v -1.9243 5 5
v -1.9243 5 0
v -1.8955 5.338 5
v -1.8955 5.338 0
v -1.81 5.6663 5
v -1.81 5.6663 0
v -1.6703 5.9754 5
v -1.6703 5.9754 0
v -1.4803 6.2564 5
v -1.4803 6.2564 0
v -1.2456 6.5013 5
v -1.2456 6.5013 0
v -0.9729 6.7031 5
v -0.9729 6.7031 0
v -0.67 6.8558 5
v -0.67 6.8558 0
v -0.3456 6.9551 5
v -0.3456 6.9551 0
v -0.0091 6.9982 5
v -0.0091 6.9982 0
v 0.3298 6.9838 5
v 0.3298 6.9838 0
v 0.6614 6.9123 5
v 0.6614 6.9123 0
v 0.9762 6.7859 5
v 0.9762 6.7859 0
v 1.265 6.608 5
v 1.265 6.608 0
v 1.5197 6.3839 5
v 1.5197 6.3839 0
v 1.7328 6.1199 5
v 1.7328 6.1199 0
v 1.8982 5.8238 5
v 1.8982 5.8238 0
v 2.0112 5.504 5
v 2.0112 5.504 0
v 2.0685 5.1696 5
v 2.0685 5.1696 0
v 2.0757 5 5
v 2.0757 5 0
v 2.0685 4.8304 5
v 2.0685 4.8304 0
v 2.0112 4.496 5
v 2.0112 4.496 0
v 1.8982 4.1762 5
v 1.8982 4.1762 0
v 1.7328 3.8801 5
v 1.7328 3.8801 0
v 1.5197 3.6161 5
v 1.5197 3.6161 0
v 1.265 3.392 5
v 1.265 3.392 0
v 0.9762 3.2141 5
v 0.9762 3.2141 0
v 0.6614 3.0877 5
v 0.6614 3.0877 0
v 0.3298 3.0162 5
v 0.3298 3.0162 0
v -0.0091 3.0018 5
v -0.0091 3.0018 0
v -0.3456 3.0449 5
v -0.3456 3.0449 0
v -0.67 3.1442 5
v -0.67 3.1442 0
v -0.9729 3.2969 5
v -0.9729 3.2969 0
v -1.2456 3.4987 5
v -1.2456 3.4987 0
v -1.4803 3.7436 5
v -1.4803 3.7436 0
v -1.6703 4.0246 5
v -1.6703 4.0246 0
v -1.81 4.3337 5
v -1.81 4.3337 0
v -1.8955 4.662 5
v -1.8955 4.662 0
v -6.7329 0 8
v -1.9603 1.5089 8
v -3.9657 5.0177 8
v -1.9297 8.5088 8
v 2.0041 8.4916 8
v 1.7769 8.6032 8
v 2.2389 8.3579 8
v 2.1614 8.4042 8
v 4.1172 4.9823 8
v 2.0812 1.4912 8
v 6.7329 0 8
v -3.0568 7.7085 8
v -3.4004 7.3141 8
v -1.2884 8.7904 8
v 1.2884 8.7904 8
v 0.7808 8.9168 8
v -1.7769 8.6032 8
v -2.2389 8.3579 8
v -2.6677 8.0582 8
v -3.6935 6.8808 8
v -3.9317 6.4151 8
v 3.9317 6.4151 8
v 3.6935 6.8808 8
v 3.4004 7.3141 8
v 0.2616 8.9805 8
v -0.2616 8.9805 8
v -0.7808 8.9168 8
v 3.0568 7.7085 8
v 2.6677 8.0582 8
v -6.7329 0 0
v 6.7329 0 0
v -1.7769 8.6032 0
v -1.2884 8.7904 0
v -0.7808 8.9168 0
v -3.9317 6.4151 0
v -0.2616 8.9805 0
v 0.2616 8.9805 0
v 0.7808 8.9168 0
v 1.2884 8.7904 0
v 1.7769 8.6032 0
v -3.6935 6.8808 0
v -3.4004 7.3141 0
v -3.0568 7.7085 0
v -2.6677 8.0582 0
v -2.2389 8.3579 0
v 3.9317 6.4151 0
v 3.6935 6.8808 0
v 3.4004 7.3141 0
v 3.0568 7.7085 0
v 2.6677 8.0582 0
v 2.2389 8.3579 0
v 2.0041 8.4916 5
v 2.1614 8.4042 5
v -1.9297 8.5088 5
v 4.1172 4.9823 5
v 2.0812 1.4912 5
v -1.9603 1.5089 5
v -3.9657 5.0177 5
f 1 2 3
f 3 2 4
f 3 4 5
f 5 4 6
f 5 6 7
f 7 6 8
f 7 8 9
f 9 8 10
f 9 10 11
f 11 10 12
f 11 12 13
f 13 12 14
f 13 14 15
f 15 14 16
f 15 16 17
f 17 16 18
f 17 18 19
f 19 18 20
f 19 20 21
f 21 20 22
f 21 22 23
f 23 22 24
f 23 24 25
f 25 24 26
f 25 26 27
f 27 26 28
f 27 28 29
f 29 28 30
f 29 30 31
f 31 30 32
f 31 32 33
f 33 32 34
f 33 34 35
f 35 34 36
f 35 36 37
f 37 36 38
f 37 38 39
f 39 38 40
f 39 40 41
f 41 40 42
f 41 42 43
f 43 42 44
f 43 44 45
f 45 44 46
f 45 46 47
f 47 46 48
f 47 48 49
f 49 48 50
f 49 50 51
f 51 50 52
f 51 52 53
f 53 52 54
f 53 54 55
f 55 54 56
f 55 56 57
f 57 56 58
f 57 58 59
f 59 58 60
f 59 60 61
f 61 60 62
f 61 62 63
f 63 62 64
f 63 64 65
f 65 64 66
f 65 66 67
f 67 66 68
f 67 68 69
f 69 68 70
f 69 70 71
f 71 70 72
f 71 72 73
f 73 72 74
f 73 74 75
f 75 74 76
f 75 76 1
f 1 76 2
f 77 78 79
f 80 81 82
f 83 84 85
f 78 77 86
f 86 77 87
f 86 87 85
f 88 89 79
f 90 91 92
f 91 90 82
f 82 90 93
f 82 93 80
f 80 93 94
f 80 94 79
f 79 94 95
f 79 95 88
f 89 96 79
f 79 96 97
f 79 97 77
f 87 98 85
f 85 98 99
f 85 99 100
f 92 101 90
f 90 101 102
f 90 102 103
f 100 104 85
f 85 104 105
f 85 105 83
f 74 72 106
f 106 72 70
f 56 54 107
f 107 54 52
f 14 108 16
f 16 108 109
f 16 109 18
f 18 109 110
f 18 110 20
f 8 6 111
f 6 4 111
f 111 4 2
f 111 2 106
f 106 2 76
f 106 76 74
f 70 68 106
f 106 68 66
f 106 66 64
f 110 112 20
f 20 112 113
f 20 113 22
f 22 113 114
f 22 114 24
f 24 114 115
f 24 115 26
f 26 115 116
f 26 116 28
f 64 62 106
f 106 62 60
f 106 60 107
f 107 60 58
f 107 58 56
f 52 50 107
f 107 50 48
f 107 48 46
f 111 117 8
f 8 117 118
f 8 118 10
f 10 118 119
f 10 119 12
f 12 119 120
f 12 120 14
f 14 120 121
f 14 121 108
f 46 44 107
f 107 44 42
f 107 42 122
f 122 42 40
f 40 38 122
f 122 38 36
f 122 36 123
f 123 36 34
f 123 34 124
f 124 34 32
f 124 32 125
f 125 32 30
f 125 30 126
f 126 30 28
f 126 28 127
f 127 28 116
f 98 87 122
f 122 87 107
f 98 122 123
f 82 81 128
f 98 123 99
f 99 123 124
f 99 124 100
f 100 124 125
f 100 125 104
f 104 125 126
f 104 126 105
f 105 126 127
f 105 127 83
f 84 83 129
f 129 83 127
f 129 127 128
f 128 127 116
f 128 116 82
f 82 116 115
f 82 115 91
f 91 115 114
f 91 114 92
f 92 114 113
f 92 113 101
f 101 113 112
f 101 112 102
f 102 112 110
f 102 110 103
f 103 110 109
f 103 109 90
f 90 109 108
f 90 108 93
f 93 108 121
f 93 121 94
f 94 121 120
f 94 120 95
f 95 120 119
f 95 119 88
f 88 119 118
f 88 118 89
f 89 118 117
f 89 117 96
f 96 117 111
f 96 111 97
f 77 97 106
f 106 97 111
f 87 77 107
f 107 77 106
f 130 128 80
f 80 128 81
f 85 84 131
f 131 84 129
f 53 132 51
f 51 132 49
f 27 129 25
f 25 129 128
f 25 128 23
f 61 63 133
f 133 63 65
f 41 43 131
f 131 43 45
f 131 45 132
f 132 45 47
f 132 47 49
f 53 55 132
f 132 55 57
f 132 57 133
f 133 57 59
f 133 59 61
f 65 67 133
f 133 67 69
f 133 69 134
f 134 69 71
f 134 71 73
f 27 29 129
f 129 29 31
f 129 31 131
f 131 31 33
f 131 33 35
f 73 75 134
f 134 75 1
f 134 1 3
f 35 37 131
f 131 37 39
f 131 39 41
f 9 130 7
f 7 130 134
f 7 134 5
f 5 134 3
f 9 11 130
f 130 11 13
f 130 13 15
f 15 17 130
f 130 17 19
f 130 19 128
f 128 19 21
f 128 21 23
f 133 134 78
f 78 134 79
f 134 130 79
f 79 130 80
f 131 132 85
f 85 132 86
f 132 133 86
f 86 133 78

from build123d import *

# Parameters (mm, degrees)
CROQUIS1_R              = 2
SALIENTE_EXTRUIR1_DEPTH = 8
CORTAR_EXTRUIR1_DEPTH   = 3


with BuildPart() as part:
    # Croquis1 → Saliente-Extruir1 (new body)
    with BuildSketch(Plane.XY):
        with BuildLine():
            Line((0, 0), (-6.732907314, 0))
            Line((-6.732907314, 0), (-3.931702166, 6.415079868))
            ThreePointArc((-3.931702166, 6.415079868), (0, 8.988455594), (3.931702166, 6.415079868))
            Line((3.931702166, 6.415079868), (6.732907314, 0))
            Line((6.732907314, 0), (0, 0))
        make_face()
        with Locations((0.075747875, 5)):
            Circle(CROQUIS1_R, mode=Mode.SUBTRACT)
    extrude(amount=SALIENTE_EXTRUIR1_DEPTH)

    # Croquis2 → Cortar-Extruir1 (cut)
    with BuildSketch(Plane.XY.offset(8)):
        Polygon((-1.960251802, 1.508862843), (2.081161502, 1.491203979), (4.11716118, 4.982341136), (2.111747552, 8.491137157), (-1.929665752, 8.508796021), (-3.965665429, 5.017658864), align=None)
    extrude(amount=-CORTAR_EXTRUIR1_DEPTH, mode=Mode.SUBTRACT)


solid = part.part
